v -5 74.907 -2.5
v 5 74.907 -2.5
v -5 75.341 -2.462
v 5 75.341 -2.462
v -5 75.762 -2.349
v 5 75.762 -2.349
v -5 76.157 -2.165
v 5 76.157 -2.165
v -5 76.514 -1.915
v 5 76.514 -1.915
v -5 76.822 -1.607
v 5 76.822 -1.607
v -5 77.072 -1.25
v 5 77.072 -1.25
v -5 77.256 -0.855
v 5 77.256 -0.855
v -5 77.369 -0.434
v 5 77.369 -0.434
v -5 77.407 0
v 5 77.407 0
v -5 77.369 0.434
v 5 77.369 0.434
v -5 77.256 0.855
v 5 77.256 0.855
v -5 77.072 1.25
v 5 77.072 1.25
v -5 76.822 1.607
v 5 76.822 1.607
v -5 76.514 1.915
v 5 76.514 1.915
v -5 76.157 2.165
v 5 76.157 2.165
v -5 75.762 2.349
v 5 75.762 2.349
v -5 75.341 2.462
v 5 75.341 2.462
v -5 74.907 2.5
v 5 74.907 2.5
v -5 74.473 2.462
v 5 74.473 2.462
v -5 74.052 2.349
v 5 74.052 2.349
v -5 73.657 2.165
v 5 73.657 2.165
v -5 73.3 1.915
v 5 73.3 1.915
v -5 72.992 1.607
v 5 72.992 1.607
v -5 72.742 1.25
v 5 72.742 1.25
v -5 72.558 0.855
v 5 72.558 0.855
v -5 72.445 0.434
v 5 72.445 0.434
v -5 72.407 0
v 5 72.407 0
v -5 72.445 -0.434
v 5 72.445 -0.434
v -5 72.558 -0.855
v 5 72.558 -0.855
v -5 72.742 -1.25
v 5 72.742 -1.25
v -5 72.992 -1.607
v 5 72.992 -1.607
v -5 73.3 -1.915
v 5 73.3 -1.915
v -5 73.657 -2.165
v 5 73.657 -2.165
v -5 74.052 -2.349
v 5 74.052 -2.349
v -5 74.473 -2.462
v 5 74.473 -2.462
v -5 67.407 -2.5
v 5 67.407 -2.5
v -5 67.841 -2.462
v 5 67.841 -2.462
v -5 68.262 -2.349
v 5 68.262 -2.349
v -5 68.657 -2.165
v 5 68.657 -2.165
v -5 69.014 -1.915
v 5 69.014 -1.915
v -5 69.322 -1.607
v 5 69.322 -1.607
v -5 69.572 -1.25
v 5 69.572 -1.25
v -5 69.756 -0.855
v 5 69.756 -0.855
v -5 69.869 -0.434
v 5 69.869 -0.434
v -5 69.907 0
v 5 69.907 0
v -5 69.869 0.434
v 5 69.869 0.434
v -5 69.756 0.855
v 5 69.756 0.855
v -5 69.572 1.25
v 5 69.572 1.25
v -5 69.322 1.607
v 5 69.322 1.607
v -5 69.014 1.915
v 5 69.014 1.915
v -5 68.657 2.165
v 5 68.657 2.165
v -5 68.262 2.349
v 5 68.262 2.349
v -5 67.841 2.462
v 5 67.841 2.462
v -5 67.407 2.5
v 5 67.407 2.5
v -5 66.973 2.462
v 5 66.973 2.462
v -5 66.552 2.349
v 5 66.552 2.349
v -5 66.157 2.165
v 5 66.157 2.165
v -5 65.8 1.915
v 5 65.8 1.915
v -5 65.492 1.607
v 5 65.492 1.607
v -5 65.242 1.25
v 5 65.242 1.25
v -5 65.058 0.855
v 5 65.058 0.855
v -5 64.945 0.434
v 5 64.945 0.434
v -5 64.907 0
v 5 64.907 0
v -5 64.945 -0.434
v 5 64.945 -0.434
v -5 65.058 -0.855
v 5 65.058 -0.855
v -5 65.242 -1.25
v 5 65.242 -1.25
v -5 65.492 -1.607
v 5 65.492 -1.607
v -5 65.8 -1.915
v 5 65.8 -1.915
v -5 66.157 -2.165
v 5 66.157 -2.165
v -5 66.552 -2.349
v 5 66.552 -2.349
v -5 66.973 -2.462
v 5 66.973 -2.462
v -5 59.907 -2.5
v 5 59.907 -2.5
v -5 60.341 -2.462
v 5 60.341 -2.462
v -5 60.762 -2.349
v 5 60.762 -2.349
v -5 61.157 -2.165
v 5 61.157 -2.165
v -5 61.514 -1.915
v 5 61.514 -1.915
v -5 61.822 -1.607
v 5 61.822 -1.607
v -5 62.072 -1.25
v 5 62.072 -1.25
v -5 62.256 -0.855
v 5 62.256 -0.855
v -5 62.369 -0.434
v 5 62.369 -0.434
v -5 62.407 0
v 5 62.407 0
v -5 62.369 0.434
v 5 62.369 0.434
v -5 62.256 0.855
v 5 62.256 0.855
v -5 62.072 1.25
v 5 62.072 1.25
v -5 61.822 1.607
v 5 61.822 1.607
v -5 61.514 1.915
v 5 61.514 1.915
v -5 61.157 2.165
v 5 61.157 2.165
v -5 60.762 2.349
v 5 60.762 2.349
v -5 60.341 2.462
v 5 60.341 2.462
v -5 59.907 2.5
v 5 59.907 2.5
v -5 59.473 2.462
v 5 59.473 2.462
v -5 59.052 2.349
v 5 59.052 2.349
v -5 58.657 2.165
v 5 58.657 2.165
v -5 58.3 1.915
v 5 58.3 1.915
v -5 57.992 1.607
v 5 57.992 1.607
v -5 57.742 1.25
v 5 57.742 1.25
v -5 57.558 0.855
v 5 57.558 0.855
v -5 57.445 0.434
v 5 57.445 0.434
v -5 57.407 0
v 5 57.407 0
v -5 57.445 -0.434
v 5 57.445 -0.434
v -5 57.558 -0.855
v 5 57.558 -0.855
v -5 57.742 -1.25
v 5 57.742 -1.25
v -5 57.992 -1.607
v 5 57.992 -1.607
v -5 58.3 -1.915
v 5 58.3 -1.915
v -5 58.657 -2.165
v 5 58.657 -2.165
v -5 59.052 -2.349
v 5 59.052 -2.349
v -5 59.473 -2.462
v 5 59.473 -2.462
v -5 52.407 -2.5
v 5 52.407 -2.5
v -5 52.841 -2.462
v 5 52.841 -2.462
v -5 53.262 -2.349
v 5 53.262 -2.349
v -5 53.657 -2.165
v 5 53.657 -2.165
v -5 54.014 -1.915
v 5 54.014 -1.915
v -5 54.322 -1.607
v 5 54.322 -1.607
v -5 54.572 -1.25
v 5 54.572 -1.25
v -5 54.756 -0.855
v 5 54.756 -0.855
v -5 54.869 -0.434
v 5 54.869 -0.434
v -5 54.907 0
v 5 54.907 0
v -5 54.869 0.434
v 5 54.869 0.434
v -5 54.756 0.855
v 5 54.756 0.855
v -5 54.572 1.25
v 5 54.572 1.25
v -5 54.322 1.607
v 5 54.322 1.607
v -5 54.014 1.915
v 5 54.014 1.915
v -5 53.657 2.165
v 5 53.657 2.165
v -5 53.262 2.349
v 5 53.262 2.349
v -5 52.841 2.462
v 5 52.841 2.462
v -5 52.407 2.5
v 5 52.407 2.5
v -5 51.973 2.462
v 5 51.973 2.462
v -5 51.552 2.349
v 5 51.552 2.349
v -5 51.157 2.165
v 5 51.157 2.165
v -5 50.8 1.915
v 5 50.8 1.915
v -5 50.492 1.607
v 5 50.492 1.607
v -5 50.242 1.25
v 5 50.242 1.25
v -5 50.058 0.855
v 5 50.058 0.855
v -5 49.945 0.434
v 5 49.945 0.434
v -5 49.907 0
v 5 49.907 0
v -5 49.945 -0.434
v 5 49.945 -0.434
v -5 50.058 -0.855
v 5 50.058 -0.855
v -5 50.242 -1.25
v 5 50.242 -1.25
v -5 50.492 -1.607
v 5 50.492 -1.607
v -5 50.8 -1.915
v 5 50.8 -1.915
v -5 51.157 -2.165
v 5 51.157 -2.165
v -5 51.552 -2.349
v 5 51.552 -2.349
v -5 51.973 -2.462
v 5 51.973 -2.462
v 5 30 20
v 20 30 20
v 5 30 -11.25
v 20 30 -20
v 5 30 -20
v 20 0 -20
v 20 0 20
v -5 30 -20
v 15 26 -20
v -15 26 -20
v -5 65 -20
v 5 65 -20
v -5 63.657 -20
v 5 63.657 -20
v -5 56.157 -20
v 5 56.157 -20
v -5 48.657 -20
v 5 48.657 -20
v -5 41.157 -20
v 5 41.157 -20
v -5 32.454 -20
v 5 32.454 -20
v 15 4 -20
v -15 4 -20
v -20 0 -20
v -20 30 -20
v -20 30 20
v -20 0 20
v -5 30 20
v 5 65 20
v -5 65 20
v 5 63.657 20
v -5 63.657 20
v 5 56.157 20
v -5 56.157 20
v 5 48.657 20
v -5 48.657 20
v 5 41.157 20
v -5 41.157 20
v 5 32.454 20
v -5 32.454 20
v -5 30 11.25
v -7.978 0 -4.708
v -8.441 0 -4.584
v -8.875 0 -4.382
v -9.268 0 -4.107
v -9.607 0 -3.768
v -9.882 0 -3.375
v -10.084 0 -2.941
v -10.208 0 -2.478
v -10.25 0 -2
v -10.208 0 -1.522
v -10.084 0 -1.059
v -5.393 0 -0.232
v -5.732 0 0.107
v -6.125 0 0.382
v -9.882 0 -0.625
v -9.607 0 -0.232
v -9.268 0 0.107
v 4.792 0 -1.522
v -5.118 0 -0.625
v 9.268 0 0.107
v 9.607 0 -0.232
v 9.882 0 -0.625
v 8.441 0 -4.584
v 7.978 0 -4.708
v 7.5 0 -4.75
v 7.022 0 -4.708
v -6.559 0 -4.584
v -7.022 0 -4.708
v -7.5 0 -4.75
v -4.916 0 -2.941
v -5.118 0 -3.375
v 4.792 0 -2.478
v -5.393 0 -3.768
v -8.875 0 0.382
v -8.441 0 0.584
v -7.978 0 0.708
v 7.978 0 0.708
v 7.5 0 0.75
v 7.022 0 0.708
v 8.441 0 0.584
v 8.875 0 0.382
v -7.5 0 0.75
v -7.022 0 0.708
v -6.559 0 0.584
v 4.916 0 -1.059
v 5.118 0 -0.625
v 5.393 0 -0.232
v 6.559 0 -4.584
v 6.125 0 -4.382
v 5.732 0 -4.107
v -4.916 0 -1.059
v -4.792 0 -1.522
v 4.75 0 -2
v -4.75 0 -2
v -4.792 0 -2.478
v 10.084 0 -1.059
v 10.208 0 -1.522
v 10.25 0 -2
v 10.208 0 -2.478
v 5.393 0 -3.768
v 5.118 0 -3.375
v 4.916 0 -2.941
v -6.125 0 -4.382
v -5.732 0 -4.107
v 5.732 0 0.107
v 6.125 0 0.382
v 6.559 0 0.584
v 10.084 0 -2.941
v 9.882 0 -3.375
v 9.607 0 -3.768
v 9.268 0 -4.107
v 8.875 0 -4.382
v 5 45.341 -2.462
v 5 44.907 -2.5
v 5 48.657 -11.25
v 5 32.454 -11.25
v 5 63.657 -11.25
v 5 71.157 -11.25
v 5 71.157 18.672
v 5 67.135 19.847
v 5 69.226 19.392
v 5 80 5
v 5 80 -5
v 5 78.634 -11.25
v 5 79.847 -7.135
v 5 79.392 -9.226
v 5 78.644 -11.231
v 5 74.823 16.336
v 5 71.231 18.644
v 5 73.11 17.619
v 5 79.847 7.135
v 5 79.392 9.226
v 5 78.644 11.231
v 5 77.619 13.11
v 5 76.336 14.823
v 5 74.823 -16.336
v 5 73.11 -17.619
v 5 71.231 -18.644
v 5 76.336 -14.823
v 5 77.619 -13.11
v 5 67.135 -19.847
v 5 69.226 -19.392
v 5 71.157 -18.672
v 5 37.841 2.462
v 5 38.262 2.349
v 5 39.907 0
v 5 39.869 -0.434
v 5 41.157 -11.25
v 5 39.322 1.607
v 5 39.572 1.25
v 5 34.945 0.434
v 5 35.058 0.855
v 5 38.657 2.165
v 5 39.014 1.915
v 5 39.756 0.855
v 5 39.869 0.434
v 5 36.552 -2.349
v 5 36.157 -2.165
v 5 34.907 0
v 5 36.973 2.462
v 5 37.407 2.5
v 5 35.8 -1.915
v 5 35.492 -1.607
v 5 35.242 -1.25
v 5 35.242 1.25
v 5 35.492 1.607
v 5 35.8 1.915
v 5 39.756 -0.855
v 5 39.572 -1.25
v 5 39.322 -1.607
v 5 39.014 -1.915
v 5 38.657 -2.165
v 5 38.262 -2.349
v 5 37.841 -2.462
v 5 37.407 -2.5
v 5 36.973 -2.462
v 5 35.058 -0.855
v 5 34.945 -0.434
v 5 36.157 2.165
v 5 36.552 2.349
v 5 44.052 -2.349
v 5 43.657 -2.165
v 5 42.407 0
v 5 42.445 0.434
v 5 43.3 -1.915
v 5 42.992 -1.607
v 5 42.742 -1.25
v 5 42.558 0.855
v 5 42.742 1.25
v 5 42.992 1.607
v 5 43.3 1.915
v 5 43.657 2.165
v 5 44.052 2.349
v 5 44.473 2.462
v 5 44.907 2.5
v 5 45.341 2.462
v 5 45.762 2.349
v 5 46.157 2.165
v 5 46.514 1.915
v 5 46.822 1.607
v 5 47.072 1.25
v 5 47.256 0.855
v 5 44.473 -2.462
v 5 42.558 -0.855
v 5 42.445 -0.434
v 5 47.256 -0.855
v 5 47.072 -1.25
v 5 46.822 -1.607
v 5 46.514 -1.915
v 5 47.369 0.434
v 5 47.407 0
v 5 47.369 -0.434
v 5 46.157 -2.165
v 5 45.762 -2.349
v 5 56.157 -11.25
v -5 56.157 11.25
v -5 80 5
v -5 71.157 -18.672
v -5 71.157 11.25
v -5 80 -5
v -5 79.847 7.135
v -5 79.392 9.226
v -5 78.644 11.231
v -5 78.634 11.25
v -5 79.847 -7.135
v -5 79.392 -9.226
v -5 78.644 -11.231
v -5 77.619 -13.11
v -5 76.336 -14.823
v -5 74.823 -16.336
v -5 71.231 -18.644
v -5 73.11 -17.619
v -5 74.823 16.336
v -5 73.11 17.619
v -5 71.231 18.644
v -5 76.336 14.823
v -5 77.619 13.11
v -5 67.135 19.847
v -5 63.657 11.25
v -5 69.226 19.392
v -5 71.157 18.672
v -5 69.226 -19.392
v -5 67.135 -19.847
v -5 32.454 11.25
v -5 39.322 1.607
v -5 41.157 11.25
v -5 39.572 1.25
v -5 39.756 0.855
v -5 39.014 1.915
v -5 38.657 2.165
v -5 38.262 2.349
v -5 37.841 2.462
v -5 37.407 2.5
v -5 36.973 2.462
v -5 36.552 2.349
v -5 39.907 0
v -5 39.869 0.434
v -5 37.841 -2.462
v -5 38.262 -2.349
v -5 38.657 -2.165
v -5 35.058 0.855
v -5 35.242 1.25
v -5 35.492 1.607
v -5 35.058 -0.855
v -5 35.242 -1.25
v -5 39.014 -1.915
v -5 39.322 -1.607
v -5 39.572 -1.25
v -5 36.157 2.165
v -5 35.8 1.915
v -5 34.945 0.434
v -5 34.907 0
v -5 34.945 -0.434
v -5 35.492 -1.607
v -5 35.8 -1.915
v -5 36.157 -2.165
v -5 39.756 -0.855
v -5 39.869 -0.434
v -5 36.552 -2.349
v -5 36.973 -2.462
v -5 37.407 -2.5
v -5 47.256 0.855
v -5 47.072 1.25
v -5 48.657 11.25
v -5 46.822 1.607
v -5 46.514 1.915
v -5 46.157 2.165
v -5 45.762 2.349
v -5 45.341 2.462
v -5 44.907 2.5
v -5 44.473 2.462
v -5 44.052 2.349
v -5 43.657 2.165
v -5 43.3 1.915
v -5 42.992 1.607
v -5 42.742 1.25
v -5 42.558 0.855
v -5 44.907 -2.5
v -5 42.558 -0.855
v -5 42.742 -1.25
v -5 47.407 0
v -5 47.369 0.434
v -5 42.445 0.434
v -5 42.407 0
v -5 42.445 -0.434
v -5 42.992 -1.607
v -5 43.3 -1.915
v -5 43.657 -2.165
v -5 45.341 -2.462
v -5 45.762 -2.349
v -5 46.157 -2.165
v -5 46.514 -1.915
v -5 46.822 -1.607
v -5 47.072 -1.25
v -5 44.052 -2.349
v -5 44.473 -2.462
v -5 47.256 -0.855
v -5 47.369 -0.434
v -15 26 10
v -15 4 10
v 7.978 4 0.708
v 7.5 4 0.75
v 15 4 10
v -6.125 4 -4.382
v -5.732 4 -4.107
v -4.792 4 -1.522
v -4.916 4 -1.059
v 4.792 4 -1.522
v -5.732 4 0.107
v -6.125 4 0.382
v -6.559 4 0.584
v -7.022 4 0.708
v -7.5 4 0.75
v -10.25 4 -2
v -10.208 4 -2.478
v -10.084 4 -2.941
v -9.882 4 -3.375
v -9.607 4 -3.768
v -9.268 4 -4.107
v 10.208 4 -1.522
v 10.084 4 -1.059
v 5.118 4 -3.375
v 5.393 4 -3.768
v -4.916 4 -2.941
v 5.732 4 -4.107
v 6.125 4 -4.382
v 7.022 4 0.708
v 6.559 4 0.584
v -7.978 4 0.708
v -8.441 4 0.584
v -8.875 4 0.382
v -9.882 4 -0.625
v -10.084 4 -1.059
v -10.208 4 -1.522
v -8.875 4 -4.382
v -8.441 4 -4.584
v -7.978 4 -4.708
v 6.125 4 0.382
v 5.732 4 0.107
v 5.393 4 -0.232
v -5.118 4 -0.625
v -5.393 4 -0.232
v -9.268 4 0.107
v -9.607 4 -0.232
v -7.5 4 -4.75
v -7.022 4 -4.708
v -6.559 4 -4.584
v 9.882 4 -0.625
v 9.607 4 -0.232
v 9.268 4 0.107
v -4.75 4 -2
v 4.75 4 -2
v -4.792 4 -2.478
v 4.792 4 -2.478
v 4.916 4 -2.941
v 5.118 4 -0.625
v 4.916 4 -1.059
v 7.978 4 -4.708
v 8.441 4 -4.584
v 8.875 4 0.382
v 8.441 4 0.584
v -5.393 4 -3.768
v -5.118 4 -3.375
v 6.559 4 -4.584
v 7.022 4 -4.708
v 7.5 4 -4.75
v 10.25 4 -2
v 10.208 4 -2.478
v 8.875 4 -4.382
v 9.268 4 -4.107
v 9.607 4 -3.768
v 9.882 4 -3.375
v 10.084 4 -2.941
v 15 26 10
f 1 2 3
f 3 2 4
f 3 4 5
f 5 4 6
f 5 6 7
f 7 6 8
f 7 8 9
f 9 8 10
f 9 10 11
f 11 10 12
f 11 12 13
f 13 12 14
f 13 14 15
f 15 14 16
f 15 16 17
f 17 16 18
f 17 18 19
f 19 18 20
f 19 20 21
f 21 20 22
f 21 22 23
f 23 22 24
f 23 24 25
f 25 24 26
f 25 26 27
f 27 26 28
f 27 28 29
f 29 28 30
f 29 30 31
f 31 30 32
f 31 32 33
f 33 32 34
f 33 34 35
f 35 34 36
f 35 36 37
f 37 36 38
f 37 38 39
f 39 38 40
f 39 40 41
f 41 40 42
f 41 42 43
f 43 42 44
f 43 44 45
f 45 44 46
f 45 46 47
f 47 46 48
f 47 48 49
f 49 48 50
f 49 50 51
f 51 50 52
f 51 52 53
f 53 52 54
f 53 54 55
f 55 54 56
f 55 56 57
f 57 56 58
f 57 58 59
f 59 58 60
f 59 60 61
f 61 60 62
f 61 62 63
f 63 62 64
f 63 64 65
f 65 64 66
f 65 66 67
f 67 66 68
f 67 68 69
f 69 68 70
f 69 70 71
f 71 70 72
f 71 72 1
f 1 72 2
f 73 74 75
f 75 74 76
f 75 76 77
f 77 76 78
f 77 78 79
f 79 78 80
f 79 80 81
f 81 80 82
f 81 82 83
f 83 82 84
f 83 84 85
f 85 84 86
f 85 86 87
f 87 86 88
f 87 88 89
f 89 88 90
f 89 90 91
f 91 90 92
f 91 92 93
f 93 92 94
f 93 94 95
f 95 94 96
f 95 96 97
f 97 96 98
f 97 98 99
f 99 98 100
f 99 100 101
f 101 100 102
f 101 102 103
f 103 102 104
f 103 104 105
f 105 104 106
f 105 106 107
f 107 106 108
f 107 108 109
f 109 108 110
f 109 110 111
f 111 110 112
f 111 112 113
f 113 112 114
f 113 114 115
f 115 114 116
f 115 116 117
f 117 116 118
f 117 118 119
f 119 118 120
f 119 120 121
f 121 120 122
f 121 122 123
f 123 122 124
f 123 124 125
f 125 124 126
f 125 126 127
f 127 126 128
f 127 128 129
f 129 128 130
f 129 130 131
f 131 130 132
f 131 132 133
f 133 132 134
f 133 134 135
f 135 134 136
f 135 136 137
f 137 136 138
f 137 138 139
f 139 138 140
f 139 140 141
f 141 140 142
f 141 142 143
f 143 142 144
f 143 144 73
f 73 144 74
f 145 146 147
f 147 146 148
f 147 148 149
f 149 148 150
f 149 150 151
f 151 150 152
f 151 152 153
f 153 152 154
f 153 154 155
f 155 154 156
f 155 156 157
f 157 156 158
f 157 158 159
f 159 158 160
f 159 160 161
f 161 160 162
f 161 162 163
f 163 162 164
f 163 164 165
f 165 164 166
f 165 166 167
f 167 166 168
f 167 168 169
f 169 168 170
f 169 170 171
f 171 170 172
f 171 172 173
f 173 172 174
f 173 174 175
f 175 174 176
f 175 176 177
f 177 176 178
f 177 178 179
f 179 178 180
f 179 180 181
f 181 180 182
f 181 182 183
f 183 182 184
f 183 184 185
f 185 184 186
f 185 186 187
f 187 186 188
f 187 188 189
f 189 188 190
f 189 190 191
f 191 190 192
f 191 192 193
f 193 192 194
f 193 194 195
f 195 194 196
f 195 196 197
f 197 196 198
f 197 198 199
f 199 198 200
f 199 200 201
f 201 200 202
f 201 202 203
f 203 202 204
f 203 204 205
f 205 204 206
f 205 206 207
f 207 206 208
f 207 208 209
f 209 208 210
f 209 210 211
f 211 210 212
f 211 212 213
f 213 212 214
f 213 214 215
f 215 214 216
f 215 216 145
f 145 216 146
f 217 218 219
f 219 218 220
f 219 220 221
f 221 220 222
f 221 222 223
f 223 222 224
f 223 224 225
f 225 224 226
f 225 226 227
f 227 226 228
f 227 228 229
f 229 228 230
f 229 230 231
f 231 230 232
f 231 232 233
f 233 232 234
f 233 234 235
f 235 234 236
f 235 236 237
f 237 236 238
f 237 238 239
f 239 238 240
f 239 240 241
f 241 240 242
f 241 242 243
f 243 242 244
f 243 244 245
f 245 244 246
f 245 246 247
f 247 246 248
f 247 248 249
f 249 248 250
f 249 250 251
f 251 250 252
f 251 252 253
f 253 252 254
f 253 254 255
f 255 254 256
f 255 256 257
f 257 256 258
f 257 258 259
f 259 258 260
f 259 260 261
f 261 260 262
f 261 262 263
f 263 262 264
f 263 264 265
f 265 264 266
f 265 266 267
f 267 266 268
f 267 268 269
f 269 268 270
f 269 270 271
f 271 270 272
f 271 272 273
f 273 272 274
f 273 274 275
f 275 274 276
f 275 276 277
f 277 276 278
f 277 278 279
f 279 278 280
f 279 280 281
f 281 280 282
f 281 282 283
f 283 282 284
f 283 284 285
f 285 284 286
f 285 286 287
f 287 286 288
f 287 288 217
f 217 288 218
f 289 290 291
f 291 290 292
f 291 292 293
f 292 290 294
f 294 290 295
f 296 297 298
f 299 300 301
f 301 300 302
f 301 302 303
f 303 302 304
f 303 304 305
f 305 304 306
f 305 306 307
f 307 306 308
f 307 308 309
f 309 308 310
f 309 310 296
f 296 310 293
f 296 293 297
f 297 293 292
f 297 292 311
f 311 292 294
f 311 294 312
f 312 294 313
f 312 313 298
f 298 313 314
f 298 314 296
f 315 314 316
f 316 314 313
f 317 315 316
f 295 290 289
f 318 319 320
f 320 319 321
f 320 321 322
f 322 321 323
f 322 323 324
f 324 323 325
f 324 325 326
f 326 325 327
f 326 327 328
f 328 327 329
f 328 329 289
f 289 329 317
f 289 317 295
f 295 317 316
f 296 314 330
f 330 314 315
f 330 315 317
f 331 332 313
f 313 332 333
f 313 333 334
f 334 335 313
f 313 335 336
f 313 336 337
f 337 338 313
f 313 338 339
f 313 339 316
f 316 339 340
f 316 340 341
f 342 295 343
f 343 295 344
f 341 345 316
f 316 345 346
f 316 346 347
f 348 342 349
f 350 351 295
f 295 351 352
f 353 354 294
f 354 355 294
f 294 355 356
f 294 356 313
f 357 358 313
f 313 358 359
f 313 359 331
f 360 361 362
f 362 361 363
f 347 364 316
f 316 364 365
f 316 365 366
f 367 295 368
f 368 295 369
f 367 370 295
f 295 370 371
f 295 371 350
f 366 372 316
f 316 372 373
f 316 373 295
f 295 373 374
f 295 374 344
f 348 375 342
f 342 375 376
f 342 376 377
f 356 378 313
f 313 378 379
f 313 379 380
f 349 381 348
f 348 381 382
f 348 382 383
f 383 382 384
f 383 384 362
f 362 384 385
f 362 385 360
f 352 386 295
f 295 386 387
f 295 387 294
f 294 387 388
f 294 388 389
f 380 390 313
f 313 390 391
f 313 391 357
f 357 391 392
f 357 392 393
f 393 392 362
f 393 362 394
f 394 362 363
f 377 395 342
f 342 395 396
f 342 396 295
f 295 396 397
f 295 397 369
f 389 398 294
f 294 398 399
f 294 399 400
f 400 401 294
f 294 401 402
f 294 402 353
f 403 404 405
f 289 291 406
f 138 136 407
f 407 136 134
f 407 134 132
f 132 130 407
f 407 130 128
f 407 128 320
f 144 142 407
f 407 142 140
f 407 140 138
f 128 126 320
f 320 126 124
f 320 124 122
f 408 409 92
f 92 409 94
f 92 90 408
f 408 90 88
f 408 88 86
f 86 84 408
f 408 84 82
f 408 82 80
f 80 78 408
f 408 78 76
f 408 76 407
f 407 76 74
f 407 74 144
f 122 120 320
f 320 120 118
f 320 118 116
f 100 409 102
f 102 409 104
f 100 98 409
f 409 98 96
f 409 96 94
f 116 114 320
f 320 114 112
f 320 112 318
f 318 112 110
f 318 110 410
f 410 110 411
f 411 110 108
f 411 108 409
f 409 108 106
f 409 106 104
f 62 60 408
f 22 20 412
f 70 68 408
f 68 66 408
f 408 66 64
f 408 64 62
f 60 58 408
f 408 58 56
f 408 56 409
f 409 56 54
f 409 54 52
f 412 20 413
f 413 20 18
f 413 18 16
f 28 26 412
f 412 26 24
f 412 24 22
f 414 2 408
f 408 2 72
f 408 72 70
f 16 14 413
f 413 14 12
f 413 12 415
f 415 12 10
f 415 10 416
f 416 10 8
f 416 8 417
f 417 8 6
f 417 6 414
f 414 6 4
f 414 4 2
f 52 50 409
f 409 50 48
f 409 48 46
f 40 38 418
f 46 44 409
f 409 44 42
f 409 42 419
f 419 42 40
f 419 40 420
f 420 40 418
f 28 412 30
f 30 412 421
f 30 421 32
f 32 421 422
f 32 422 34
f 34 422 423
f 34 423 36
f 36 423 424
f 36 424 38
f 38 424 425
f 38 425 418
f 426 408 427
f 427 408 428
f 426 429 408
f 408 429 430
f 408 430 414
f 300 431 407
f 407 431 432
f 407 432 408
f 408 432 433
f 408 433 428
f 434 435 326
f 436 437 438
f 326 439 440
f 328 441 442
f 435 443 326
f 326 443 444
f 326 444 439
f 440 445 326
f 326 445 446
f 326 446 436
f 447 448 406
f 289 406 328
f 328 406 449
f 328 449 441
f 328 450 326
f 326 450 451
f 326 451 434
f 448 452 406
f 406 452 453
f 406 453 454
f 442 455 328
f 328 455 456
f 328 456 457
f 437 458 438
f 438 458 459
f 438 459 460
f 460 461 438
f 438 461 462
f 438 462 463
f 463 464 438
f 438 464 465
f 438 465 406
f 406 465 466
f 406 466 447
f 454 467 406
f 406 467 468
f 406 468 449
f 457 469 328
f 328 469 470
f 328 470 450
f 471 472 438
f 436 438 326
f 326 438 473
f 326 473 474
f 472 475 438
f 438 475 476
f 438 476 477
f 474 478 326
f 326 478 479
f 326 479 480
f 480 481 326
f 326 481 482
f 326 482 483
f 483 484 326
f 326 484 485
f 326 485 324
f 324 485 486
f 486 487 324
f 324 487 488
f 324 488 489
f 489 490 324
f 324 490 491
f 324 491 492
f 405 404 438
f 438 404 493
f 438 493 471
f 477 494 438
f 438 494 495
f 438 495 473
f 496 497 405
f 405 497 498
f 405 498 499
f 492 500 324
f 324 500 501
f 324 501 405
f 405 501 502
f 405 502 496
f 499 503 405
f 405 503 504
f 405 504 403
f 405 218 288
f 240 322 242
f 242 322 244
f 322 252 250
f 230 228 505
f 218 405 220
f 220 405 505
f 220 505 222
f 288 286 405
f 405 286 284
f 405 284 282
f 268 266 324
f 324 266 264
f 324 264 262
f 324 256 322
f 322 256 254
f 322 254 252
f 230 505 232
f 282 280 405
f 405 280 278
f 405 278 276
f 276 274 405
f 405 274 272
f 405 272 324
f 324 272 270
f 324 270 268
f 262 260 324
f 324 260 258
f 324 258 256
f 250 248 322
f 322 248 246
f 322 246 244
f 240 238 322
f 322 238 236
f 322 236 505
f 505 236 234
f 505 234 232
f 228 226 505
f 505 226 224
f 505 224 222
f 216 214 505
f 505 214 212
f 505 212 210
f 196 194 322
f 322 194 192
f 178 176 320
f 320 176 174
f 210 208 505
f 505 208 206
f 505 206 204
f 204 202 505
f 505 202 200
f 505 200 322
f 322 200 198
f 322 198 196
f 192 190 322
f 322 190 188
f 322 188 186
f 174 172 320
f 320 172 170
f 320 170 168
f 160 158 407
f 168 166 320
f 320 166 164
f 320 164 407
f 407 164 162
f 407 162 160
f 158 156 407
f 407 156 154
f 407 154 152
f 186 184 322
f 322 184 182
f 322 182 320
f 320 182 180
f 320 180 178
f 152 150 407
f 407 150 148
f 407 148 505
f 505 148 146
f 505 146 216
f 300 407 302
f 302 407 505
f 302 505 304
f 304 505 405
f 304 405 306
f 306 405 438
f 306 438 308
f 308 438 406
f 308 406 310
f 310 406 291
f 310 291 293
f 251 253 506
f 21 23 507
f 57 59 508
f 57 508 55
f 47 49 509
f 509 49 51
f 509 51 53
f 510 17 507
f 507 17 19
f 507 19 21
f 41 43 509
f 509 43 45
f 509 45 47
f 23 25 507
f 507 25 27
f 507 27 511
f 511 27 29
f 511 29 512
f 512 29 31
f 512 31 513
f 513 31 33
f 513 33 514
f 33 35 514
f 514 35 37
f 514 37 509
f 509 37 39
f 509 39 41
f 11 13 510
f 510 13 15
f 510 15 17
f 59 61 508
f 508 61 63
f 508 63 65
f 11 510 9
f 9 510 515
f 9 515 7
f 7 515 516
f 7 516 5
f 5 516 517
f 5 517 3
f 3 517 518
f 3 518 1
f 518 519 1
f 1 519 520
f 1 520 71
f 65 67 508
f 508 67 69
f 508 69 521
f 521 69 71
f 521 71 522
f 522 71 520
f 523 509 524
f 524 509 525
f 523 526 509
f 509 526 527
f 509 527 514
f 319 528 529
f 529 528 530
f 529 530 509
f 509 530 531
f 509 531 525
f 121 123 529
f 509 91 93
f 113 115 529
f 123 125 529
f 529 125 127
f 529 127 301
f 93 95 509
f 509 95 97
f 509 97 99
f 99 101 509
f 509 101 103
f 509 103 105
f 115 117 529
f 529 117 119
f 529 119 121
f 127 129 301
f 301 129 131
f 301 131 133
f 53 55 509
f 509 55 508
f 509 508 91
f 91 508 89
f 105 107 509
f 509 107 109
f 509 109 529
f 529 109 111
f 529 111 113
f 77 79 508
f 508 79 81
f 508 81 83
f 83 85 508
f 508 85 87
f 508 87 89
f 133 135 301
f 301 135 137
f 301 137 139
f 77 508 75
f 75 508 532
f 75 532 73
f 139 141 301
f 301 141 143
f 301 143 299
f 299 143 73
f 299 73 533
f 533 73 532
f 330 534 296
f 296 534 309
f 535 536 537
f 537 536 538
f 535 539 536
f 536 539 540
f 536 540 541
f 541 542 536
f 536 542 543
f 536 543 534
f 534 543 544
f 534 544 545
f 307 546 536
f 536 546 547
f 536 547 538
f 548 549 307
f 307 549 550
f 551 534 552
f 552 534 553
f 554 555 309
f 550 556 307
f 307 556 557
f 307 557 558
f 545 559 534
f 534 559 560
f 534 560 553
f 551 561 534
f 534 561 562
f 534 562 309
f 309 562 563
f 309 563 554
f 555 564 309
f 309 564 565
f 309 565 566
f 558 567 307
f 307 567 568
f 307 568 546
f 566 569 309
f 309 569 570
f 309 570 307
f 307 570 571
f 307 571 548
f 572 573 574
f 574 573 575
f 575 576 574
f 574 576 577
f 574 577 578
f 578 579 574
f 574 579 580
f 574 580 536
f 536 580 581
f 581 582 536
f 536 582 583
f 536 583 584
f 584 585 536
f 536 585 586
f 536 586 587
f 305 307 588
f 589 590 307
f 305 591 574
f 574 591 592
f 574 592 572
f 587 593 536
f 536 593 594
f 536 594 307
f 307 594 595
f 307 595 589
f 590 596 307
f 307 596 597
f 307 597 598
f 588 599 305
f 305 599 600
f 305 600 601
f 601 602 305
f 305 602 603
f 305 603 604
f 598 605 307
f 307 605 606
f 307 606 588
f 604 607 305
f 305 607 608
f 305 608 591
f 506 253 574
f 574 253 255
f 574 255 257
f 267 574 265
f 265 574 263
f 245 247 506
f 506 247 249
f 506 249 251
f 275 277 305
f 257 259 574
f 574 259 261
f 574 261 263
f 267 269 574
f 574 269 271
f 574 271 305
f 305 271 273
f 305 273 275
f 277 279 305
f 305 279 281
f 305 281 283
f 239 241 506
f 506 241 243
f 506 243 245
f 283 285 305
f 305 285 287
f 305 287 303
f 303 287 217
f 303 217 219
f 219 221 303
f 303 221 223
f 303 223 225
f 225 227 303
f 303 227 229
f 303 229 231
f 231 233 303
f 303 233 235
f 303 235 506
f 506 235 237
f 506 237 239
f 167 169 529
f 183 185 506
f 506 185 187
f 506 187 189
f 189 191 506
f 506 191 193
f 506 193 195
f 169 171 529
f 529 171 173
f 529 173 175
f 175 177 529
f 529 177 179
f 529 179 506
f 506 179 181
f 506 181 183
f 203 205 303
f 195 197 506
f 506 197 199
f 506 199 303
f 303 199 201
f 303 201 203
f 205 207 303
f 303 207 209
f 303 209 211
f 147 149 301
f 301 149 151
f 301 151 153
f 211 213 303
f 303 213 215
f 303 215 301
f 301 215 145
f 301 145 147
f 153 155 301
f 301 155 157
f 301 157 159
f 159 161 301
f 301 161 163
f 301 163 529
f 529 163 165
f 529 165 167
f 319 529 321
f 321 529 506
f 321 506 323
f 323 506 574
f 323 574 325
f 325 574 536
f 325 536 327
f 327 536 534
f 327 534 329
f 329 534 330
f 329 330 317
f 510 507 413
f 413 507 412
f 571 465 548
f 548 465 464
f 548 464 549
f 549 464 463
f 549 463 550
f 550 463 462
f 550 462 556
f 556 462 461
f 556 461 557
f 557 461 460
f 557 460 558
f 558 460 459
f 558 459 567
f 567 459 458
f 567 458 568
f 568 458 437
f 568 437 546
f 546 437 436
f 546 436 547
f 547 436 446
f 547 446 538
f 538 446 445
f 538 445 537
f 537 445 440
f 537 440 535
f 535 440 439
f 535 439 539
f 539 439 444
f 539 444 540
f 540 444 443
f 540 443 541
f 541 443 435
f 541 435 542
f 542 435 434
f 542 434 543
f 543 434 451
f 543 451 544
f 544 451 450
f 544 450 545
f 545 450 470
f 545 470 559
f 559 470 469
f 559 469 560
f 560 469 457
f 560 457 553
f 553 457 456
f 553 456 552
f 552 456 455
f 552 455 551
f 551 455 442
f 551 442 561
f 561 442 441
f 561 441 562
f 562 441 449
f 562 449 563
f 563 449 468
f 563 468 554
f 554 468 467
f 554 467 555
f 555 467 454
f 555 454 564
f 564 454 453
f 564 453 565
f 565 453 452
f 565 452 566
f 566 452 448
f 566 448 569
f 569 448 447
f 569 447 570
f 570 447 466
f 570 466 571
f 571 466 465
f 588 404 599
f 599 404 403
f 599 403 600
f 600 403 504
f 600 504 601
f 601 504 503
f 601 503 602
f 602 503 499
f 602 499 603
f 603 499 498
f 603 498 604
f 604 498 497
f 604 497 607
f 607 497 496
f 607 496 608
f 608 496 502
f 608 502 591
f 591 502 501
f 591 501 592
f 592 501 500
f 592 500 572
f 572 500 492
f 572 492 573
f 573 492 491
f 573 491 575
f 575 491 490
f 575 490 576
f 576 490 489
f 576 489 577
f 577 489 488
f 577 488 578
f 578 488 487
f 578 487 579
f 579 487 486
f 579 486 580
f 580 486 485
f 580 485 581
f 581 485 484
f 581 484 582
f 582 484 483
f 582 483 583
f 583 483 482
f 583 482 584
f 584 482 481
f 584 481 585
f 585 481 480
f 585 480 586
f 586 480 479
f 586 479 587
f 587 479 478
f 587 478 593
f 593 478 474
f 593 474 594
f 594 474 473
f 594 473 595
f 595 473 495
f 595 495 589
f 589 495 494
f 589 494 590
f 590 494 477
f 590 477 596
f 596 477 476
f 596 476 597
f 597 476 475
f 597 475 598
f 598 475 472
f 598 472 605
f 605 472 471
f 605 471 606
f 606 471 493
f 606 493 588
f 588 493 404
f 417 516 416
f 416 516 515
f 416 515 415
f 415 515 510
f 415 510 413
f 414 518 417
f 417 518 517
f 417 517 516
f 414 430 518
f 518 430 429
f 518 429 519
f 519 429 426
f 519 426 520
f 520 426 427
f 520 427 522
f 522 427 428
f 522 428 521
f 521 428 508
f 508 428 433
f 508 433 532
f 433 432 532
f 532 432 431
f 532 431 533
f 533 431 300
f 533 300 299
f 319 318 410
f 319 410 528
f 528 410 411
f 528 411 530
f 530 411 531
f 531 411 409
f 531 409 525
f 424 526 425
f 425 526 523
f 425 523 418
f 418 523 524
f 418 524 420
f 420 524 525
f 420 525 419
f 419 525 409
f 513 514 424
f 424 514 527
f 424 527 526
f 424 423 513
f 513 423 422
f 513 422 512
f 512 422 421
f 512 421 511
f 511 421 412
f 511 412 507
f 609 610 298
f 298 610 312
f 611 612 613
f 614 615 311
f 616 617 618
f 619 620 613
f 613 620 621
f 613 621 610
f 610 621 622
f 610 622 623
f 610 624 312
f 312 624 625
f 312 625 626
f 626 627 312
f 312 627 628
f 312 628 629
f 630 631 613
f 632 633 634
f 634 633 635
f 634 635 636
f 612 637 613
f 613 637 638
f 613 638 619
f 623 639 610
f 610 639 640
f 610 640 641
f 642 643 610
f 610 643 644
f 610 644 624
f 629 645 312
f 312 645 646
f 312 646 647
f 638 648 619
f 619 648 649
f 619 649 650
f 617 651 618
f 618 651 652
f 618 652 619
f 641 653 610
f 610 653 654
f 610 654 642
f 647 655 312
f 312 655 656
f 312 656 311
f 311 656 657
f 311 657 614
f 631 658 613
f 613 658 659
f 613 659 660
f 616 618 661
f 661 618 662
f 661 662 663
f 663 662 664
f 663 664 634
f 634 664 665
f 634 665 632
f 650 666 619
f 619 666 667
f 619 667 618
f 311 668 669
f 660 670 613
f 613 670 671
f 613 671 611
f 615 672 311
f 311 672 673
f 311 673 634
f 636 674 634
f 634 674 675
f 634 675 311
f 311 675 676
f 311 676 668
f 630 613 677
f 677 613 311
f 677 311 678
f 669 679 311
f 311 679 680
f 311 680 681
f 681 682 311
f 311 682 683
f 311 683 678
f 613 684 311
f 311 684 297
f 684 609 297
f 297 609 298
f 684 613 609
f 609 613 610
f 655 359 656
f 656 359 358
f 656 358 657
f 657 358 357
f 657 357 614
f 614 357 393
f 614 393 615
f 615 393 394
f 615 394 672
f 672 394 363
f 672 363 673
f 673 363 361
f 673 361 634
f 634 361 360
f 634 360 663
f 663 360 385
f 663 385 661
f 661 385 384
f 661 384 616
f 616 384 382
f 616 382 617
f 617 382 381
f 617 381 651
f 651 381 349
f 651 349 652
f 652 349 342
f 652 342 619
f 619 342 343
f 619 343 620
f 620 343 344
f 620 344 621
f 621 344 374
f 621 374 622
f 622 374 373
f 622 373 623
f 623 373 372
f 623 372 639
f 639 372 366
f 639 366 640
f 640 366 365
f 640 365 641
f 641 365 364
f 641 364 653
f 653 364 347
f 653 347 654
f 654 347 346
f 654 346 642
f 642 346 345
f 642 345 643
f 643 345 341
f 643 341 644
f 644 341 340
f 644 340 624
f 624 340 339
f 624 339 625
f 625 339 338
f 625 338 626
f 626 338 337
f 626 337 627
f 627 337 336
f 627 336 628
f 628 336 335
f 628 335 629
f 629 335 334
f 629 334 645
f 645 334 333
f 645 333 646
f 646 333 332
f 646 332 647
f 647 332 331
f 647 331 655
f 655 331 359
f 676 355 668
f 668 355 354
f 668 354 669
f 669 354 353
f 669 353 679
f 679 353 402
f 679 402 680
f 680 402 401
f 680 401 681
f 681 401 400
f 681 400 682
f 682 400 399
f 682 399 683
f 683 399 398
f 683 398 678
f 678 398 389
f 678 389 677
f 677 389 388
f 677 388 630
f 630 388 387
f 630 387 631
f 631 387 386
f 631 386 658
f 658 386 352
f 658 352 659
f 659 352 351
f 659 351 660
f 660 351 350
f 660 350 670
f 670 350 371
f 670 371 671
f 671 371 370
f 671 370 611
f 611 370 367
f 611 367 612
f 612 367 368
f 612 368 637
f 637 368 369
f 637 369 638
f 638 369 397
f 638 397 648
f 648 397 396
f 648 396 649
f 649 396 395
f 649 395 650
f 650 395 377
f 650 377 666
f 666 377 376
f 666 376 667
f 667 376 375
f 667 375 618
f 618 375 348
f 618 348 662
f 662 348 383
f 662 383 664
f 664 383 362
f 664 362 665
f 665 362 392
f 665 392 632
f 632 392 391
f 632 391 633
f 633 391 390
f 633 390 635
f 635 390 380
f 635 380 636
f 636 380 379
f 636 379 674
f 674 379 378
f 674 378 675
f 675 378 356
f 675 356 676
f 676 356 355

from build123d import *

# Parameters (mm, degrees)
SKETCH1_W           = 40
SKETCH1_H           = 40
SKETCH1_W_2         = 20
SKETCH1_H_2         = 20
BOSS_EXTRUDE1_DEPTH = 30
SKETCH4_W           = 10
SKETCH4_H           = 40
BOSS_EXTRUDE3_DEPTH = 50
SKETCH5_R           = 2.5
CUT_EXTRUDE4_DEPTH  = 87.168439698
LPATTERN1_COUNT     = 6
LPATTERN1_PITCH     = 7.5
FILLET1_R           = 15
SKETCH6_W           = 30
SKETCH6_H           = 22
CUT_EXTRUDE5_DEPTH  = 30
CUT_EXTRUDE6_REACH  = 86.853
SKETCH7_R           = 2.75


with BuildPart() as part:
    # Sketch1 → Boss-Extrude1 (new body)
    # profile 1 of 2: a face of its own
    with BuildSketch(Plane(origin=(0, 0, 0), x_dir=(1, 0, 0), z_dir=(0, 1, 0))):
        Rectangle(SKETCH1_W, SKETCH1_H)
        Rectangle(SKETCH1_W_2, SKETCH1_H_2, mode=Mode.SUBTRACT)
    # profile 2 of 2: a face of its own
    with BuildSketch(Plane(origin=(0, 0, 0), x_dir=(1, 0, 0), z_dir=(0, 1, 0))):
        Rectangle(SKETCH1_W_2, SKETCH1_H_2)
    extrude(amount=BOSS_EXTRUDE1_DEPTH)

    # Sketch4 → Boss-Extrude3 (add)
    with BuildSketch(Plane(origin=(0, 30, 0), x_dir=(1, 0, 0), z_dir=(0, 1, 0))):
        Rectangle(SKETCH4_W, SKETCH4_H)
    extrude(amount=BOSS_EXTRUDE3_DEPTH)

    # Sketch5 → Cut-Extrude4 (cut, through all)
    with BuildSketch(Plane(origin=(5, 0, 0), x_dir=(0, 0, -1), z_dir=(1, 0, 0))):
        with Locations((0, 37.407153601)):
            Circle(SKETCH5_R)
    cut_extrude4 = extrude(amount=-CUT_EXTRUDE4_DEPTH, mode=Mode.SUBTRACT)

    # LPattern1: Cut-Extrude4 ×6
    with Locations(*[(0, i * LPATTERN1_PITCH, 0) for i in range(1, LPATTERN1_COUNT)]):
        add(cut_extrude4, mode=Mode.SUBTRACT)

    # Fillet1
    fillet1_edges = [part.edges().sort_by_distance(p)[0] for p in [
        (0, 80, -20),
        (0, 80, 20),
    ]]
    fillet(fillet1_edges, radius=FILLET1_R)

    # Sketch6 → Cut-Extrude5 (cut)
    with BuildSketch(Plane(origin=(0, 0, -20), x_dir=(-1, 0, 0), z_dir=(0, 0, -1))):
        with Locations((0, 15)):
            Rectangle(SKETCH6_W, SKETCH6_H)
    extrude(amount=-CUT_EXTRUDE5_DEPTH, mode=Mode.SUBTRACT)

    # Sketch7 → Cut-Extrude6 (cut, up to next)
    with BuildSketch(Plane.XZ, mode=Mode.PRIVATE) as cut_extrude6_sk1:
        with Locations(Location((-7.5, -2, 0), (0, 0, 270))):
            Circle(SKETCH7_R)
    cut_extrude6_tool1 = extrude(cut_extrude6_sk1.sketch, amount=-CUT_EXTRUDE6_REACH, mode=Mode.PRIVATE) & part.part
    # Sketch7 → Cut-Extrude6 (cut, up to next)
    with BuildSketch(Plane.XZ, mode=Mode.PRIVATE) as cut_extrude6_sk2:
        with Locations(Location((7.5, -2, 0), (0, 0, 270))):
            Circle(SKETCH7_R)
    cut_extrude6_tool2 = extrude(cut_extrude6_sk2.sketch, amount=-CUT_EXTRUDE6_REACH, mode=Mode.PRIVATE) & part.part
    add(cut_extrude6_tool1.solids().sort_by_distance((-7.5, 0, -2))[0], mode=Mode.SUBTRACT)
    add(cut_extrude6_tool2.solids().sort_by_distance((7.5, 0, -2))[0], mode=Mode.SUBTRACT)


solid = part.part
